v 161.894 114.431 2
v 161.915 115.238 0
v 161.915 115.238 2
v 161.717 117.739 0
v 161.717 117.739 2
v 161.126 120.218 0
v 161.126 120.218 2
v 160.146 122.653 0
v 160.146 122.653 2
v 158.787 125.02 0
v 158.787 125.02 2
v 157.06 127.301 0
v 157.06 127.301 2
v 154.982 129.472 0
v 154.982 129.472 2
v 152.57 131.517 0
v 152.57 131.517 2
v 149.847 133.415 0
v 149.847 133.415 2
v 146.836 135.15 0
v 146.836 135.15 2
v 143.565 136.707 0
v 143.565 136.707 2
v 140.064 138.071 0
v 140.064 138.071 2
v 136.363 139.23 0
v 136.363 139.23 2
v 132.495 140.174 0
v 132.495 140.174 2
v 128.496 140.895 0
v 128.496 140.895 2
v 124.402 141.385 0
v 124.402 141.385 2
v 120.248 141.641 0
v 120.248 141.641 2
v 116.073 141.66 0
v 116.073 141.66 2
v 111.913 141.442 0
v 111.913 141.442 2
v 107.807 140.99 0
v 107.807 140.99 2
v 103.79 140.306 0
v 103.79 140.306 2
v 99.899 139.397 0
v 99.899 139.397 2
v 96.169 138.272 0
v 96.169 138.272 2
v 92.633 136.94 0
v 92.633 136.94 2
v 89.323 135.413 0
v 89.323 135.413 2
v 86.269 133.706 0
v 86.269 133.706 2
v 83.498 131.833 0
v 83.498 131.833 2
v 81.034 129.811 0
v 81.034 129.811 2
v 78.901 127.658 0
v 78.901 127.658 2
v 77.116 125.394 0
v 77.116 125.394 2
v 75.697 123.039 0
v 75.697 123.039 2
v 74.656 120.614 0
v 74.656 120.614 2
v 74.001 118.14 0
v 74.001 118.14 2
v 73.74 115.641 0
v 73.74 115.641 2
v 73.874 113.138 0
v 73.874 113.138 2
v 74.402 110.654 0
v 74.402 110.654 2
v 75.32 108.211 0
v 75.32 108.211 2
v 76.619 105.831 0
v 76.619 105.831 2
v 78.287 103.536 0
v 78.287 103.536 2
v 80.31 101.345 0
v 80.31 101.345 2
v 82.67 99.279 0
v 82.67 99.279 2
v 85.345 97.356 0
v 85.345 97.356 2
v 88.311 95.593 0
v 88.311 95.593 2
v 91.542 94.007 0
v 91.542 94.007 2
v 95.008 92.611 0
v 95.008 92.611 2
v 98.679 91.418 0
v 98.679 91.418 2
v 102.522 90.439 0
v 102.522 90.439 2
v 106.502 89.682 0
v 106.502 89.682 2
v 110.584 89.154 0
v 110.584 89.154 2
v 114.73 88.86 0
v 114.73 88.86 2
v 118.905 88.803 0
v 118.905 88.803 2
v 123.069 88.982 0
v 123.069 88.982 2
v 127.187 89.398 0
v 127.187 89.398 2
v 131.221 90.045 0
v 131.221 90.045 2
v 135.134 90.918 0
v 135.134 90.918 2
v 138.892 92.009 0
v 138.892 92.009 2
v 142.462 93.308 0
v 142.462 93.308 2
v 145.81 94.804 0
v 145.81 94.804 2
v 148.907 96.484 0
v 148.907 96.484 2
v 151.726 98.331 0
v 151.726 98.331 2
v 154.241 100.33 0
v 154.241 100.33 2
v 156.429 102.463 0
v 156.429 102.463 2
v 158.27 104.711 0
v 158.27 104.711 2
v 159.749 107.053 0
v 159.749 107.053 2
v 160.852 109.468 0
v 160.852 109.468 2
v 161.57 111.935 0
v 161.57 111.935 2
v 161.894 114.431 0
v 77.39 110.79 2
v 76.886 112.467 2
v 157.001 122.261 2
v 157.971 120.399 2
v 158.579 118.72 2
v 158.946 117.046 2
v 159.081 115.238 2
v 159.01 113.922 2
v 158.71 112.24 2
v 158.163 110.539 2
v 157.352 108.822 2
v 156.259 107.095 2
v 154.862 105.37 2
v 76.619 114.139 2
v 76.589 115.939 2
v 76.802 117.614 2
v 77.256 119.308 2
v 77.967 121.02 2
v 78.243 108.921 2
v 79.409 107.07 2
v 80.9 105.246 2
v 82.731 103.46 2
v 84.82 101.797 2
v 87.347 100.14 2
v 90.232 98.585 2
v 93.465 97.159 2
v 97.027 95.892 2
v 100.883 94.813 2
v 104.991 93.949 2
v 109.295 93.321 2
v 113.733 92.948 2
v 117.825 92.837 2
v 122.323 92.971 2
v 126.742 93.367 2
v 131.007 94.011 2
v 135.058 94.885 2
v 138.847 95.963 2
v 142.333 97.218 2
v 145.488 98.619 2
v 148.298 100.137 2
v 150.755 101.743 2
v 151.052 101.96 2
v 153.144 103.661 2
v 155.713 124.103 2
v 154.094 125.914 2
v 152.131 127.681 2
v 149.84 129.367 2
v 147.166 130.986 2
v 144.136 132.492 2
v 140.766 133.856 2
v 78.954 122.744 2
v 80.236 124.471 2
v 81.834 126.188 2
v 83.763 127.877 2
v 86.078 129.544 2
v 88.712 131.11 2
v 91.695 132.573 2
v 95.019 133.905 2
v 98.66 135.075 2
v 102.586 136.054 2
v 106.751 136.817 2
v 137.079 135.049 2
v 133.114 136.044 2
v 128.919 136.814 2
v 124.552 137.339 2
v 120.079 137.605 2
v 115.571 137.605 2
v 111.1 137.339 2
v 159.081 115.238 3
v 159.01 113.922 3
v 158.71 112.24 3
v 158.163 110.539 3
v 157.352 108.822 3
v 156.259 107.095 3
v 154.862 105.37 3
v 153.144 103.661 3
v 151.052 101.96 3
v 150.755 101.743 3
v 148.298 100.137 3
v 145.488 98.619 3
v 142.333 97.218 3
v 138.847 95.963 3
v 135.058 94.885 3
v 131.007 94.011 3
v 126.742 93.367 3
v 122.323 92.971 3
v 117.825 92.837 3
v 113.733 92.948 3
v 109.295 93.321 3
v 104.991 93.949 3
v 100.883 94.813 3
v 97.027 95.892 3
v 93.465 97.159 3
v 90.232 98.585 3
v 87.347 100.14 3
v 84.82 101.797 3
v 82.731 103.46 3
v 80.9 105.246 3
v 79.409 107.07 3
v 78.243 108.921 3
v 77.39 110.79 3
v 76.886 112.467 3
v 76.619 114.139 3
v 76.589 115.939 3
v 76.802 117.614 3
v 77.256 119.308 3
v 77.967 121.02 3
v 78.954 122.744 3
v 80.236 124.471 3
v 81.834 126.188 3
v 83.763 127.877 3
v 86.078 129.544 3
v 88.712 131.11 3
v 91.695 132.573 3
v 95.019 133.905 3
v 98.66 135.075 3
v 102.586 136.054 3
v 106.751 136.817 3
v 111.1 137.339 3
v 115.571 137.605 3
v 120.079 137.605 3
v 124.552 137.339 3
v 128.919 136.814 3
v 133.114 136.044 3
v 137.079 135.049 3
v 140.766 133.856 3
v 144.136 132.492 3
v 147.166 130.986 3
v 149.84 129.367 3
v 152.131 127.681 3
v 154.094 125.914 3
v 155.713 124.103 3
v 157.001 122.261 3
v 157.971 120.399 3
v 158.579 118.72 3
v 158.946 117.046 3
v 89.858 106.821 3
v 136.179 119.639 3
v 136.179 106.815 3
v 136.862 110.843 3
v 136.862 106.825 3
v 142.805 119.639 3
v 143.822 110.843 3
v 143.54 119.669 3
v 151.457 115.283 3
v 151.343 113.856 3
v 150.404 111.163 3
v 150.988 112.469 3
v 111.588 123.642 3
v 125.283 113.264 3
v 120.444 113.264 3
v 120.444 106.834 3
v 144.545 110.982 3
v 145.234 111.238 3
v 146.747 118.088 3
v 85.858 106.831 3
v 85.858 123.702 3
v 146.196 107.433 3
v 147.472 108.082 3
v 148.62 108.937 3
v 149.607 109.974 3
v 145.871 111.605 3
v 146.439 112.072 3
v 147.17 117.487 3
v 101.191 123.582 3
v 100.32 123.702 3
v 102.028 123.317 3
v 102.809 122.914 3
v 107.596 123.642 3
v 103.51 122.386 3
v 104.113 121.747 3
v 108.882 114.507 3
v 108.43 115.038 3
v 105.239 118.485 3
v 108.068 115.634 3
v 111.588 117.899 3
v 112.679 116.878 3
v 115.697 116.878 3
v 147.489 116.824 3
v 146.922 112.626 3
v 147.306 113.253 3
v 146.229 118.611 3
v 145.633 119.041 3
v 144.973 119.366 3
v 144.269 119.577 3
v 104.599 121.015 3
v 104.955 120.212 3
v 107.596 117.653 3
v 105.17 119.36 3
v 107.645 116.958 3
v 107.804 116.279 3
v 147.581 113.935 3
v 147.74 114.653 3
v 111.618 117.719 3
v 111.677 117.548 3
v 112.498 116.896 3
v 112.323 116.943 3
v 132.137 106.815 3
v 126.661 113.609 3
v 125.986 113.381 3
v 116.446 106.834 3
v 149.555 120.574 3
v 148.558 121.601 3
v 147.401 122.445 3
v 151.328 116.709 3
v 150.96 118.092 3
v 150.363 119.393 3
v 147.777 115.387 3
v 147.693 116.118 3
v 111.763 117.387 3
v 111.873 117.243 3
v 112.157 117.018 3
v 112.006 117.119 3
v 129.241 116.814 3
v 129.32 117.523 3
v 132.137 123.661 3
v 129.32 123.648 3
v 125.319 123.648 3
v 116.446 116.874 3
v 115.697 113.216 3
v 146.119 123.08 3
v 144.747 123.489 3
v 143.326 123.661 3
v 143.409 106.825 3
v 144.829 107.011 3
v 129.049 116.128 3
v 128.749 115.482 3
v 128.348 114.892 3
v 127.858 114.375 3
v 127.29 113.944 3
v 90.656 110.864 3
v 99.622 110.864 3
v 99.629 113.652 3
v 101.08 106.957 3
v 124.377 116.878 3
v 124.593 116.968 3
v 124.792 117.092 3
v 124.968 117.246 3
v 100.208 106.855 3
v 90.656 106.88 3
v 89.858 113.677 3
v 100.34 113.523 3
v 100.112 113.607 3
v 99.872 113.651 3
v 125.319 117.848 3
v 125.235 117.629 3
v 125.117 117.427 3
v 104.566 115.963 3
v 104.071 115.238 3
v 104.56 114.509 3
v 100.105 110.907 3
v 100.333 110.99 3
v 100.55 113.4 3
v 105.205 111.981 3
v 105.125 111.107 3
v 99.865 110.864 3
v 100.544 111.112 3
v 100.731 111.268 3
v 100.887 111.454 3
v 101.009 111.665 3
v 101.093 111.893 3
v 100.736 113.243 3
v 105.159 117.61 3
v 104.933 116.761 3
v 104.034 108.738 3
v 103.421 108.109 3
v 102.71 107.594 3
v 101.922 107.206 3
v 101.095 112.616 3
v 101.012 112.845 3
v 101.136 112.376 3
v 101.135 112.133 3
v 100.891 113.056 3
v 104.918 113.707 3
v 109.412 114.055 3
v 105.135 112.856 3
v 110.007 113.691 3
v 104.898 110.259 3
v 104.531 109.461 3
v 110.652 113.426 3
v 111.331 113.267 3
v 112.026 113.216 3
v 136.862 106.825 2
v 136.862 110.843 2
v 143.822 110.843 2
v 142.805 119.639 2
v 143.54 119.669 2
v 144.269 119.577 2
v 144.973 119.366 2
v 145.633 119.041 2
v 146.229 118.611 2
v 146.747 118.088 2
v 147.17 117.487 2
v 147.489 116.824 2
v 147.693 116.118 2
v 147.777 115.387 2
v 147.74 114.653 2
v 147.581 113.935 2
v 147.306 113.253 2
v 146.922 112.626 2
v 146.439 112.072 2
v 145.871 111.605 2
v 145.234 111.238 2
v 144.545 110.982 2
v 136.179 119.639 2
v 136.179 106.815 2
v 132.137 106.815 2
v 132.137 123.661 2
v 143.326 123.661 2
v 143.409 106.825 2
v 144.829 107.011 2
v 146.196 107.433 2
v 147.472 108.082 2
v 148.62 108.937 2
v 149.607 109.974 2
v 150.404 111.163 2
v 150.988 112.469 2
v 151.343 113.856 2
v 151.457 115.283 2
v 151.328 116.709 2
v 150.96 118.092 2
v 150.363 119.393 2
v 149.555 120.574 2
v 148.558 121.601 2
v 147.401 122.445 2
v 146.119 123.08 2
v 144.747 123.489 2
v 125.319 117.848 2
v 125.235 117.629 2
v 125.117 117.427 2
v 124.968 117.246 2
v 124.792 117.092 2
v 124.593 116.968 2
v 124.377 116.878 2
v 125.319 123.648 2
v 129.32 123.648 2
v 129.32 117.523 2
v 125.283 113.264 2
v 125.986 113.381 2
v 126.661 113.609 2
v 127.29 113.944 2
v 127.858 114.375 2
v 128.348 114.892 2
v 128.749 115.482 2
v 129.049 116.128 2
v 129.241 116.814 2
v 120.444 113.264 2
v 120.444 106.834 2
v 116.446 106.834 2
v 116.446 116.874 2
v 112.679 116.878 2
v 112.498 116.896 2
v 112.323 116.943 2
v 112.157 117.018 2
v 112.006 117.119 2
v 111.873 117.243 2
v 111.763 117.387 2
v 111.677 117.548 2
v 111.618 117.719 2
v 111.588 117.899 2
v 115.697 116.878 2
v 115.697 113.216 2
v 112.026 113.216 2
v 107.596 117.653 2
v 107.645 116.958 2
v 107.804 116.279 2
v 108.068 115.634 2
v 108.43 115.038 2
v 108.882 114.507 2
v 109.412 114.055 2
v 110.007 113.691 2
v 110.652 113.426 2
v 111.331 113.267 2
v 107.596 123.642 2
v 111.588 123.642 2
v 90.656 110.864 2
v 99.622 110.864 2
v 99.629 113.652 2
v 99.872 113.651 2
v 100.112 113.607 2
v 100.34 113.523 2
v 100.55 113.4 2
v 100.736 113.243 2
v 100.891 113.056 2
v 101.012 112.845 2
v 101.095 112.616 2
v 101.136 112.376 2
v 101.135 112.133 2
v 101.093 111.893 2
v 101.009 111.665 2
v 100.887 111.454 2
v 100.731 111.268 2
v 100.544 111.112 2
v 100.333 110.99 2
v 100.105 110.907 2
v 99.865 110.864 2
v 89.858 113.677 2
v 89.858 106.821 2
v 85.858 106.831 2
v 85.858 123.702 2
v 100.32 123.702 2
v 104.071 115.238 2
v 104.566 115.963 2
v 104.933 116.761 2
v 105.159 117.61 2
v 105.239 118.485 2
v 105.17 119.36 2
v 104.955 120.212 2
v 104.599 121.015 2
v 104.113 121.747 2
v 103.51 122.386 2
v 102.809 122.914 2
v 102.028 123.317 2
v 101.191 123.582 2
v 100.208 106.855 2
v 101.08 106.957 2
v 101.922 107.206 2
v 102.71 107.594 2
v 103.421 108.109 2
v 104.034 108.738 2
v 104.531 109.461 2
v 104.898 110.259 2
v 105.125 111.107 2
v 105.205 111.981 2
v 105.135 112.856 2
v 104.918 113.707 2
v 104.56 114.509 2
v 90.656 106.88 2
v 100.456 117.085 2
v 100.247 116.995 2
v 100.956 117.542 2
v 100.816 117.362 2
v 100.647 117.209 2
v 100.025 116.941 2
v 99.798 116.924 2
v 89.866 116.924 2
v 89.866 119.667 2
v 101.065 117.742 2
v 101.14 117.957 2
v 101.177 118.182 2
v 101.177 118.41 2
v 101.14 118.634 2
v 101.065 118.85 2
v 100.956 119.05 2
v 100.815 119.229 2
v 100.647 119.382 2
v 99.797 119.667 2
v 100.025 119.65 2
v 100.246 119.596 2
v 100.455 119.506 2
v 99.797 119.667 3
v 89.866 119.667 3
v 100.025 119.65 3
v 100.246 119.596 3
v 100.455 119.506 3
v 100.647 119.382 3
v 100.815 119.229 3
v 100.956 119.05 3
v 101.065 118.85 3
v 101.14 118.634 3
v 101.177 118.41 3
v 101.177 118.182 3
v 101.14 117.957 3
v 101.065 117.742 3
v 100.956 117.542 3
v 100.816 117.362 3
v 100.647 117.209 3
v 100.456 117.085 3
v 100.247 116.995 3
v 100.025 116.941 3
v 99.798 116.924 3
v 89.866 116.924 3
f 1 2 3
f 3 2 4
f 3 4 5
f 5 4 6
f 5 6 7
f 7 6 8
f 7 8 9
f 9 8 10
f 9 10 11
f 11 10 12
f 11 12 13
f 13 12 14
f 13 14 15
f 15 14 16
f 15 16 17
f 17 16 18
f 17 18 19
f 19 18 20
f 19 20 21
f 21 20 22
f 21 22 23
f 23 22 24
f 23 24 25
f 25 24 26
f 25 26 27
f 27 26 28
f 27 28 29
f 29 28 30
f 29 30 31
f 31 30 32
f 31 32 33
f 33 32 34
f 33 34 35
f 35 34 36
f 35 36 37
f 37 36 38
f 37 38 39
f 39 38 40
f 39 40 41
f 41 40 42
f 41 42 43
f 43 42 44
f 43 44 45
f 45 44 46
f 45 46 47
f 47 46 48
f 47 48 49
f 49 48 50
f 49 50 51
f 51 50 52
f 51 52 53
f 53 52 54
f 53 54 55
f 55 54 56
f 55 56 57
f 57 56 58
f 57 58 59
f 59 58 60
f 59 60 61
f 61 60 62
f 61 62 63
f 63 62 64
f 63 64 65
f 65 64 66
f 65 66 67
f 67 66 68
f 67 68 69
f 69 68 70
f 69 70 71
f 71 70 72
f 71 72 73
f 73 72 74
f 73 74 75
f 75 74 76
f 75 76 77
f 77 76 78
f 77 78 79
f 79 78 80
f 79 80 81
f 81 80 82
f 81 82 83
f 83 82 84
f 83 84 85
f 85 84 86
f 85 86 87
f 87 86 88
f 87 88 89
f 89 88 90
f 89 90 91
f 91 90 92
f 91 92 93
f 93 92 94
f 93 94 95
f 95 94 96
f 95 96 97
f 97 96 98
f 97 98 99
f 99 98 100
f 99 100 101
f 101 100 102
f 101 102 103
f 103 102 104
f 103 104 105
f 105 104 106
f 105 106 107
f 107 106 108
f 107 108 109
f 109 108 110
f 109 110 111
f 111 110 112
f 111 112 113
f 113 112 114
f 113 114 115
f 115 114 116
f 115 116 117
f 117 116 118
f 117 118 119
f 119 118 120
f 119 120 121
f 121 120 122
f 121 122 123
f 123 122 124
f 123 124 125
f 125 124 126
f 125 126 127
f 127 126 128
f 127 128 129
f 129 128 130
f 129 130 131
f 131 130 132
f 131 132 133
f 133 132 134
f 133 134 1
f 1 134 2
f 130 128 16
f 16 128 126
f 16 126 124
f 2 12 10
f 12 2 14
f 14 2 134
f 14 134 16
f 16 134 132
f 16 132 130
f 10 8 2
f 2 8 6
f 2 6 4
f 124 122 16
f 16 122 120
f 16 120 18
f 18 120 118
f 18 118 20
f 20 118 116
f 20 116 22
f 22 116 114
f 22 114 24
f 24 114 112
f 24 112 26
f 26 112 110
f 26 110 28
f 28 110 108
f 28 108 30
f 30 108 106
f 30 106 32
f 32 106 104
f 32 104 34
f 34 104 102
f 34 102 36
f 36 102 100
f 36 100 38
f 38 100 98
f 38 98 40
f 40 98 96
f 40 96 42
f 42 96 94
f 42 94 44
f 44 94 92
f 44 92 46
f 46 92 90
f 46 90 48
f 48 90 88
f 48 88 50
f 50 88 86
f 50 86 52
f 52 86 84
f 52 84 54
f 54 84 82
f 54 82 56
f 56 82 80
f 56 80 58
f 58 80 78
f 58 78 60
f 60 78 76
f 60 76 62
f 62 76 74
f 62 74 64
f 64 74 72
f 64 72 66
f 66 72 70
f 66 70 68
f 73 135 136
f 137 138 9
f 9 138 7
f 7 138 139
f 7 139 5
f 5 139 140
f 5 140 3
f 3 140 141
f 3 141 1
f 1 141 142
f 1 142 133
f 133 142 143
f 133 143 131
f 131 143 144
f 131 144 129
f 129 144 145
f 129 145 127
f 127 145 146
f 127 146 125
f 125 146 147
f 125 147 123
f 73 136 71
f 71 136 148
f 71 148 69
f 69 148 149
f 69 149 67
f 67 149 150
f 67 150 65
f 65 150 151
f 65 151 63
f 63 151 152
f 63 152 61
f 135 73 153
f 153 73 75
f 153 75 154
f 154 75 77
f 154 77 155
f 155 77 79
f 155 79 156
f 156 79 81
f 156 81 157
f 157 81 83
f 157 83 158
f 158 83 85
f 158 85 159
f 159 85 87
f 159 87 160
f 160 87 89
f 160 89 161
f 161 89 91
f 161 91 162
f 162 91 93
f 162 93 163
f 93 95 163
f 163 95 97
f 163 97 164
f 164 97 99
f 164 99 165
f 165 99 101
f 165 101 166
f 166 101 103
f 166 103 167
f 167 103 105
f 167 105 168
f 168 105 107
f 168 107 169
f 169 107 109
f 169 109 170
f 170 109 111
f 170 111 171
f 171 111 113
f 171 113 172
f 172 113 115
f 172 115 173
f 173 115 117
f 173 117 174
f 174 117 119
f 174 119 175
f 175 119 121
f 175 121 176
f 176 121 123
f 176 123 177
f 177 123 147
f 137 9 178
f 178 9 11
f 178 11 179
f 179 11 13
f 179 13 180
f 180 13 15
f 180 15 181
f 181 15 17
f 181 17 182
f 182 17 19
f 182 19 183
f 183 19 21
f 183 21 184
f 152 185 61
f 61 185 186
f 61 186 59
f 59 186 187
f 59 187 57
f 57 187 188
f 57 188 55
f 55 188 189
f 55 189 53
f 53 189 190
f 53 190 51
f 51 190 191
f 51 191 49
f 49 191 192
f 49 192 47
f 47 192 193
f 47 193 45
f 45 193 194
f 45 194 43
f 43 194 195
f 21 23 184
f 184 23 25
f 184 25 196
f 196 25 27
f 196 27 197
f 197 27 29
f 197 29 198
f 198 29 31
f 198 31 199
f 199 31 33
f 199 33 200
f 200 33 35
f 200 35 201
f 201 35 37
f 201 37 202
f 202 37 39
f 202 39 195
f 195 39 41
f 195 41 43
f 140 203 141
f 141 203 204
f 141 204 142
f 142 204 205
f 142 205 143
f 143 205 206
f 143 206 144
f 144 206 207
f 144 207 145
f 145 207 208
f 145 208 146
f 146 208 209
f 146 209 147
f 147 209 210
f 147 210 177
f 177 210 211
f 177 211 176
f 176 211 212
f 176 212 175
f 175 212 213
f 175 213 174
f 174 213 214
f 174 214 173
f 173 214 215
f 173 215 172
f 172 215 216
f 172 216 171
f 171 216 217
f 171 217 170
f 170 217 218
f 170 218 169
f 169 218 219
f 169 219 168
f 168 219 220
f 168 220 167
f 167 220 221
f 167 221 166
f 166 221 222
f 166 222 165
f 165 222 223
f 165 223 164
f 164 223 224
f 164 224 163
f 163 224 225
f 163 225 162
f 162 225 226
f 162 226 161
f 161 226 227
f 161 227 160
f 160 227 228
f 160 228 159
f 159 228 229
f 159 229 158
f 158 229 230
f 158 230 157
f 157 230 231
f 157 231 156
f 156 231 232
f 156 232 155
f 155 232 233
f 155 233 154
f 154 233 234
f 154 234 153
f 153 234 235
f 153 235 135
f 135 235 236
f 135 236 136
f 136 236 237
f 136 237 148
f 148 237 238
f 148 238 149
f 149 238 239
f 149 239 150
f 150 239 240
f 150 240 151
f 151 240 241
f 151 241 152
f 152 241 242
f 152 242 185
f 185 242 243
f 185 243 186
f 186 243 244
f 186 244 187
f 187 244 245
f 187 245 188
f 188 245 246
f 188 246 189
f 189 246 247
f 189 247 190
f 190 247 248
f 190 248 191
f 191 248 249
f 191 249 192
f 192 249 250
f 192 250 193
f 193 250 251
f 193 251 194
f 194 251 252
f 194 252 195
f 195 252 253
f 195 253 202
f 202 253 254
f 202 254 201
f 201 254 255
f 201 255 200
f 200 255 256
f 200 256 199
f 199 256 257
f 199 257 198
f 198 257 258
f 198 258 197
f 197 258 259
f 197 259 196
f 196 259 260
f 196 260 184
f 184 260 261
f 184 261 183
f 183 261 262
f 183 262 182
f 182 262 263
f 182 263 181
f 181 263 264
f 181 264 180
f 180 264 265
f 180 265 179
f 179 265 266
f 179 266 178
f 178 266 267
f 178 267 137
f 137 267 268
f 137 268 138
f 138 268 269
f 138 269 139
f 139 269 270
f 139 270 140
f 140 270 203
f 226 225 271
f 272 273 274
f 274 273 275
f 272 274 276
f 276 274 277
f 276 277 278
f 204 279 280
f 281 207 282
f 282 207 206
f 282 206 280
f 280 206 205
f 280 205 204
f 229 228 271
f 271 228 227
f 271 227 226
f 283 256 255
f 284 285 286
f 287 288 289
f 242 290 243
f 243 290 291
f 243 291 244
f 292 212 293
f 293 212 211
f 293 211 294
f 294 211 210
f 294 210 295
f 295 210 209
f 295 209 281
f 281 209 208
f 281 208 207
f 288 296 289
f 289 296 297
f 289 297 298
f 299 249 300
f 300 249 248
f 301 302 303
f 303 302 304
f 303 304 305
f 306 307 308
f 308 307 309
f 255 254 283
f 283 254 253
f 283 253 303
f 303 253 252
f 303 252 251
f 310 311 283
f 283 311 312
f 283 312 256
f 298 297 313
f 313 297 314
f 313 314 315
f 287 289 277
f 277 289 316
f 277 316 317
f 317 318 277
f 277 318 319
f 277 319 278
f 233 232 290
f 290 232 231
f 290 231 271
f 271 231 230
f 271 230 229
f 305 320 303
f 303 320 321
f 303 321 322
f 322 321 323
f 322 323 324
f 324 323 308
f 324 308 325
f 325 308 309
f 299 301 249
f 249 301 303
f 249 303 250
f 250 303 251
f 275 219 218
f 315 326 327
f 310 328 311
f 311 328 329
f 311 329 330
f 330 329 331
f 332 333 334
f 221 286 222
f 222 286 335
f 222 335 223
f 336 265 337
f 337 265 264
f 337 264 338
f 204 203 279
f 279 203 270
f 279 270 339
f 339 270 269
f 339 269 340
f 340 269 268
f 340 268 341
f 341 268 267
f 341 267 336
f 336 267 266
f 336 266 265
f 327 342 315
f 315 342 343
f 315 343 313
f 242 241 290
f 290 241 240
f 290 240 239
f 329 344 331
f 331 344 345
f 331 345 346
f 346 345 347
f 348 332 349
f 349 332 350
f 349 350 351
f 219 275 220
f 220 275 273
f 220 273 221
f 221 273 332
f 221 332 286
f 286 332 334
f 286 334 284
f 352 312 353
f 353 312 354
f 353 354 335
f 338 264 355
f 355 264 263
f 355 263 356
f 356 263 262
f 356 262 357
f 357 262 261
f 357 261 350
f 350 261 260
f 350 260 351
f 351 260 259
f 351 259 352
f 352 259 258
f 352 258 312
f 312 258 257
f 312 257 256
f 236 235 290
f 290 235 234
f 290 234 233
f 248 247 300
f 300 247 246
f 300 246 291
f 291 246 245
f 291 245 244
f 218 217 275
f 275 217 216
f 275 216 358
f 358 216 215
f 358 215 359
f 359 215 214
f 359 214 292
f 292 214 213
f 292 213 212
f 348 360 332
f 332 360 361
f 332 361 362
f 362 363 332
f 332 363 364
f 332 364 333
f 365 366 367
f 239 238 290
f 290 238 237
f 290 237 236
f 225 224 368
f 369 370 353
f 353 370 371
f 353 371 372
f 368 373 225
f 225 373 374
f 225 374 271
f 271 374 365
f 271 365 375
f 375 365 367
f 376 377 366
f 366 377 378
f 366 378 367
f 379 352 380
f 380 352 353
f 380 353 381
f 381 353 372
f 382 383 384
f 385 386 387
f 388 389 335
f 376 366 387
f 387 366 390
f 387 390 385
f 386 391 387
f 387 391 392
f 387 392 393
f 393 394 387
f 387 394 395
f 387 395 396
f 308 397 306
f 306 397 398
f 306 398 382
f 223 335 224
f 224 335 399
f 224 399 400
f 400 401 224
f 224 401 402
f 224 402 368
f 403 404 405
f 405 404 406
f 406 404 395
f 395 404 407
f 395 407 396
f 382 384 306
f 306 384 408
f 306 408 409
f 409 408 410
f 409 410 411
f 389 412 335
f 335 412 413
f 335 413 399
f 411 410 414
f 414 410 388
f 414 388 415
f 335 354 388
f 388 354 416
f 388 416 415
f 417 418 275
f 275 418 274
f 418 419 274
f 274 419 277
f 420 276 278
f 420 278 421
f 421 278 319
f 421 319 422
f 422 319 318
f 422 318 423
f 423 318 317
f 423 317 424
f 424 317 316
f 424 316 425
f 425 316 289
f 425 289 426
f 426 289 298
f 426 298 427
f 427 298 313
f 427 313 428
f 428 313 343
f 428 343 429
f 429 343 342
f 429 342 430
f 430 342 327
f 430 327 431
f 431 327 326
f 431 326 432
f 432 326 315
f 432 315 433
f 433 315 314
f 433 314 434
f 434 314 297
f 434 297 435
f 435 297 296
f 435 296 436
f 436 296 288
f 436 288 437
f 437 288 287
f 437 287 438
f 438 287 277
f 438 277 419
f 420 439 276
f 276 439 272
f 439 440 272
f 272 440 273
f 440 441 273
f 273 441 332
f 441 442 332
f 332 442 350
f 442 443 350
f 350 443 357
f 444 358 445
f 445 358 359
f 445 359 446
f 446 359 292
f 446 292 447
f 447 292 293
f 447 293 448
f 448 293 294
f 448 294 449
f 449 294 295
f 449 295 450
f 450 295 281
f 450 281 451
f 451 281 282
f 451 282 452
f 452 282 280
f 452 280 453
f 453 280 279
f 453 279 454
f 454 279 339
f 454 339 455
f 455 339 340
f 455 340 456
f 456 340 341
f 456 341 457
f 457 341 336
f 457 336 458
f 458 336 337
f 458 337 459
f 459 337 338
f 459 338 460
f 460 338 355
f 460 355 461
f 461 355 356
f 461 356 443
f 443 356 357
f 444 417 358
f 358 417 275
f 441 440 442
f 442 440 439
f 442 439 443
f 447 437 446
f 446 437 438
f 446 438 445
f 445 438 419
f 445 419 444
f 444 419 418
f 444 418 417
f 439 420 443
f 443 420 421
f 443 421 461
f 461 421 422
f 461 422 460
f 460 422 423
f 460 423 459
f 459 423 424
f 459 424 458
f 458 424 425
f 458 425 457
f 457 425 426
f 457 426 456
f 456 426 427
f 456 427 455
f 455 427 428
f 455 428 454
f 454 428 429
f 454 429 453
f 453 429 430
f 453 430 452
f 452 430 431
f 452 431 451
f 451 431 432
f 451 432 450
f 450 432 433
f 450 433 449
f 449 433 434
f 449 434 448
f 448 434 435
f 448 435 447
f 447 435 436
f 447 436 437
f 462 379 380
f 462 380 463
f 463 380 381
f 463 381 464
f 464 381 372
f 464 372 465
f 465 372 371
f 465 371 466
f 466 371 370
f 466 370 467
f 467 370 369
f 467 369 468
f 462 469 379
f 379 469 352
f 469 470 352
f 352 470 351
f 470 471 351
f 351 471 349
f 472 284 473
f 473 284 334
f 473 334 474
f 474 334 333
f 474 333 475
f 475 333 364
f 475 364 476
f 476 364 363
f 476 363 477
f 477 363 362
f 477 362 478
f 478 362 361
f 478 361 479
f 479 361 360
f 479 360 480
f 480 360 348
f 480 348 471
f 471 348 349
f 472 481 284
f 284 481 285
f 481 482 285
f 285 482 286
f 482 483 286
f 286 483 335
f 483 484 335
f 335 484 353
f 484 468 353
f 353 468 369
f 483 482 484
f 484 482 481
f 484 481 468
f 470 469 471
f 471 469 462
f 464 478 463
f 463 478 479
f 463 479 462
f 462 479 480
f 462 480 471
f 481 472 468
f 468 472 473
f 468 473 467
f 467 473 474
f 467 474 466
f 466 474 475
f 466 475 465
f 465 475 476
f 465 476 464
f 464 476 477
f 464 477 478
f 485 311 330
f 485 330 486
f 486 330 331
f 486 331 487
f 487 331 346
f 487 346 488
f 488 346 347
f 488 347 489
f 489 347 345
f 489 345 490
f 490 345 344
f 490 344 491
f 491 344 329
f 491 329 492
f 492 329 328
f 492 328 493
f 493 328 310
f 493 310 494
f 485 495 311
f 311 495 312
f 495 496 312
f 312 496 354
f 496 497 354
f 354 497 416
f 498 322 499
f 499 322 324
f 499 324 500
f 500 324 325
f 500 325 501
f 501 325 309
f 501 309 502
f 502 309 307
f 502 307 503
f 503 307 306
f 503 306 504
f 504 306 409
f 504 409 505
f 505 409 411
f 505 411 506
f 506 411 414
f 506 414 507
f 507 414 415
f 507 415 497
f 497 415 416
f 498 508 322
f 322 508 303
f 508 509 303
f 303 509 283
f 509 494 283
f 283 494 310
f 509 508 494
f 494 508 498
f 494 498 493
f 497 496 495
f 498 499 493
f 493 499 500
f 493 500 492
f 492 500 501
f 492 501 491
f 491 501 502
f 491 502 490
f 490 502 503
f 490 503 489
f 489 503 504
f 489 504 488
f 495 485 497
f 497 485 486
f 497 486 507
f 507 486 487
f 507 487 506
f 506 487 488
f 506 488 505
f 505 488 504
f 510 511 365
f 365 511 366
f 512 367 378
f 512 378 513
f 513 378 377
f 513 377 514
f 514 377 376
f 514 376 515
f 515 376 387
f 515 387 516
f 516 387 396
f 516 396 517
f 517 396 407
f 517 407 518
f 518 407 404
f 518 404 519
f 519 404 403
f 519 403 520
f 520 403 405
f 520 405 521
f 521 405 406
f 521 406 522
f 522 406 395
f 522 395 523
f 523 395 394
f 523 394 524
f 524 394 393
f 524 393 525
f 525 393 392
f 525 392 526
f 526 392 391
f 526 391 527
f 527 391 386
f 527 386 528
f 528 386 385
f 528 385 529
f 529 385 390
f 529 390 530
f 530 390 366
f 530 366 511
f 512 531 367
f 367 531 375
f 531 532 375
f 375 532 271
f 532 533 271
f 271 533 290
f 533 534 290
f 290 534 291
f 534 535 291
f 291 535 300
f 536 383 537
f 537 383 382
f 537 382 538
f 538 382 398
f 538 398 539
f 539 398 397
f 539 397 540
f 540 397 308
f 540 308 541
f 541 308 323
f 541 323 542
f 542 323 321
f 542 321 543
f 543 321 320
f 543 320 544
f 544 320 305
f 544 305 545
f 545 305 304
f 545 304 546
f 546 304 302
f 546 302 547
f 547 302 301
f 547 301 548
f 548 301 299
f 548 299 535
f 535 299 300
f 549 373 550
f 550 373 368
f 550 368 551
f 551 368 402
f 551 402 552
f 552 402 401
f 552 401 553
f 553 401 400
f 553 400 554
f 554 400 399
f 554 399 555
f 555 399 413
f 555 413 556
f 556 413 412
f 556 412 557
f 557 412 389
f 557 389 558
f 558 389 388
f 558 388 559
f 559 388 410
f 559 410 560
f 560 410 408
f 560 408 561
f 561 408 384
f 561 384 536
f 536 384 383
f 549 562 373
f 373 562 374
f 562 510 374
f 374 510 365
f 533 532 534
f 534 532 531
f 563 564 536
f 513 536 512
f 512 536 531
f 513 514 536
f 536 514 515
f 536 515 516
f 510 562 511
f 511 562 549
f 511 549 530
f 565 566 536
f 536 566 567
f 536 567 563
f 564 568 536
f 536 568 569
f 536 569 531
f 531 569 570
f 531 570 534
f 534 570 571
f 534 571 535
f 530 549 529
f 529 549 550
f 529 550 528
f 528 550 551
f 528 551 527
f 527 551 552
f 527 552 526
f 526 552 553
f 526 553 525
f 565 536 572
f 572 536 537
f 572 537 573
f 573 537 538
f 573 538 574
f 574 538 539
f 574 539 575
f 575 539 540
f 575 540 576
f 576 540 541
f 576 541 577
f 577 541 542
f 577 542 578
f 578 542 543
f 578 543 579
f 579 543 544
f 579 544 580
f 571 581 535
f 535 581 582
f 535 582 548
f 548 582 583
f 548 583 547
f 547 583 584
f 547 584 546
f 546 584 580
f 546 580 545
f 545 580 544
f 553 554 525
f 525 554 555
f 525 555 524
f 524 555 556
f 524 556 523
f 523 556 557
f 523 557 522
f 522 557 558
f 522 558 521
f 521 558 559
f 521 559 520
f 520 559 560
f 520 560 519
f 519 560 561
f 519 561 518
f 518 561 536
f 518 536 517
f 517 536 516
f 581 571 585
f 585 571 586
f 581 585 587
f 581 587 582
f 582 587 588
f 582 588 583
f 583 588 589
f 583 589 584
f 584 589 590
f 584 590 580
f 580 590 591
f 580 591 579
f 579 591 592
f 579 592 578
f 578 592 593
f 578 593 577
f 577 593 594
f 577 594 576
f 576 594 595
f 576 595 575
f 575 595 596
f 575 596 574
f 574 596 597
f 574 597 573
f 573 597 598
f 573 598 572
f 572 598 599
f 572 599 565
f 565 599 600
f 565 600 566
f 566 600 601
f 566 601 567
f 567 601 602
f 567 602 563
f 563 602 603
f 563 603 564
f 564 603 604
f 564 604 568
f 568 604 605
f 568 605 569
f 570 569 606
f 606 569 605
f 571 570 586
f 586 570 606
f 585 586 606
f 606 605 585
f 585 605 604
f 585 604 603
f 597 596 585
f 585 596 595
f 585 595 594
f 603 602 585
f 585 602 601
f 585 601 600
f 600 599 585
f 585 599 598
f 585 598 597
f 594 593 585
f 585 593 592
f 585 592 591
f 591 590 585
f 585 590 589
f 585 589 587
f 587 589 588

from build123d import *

# Parameters (mm, degrees)
SKETCH_3_RX         = 44.090053558
SKETCH_3_RY         = 26.443239621
EXTRUDE_1_DEPTH     = 3
CUT_EXTRUDE_START   = 3
SKETCH_3_4_RX       = 44.090053558
SKETCH_3_4_RY       = 26.443239621
SKETCH_3_4_RX_2     = 41.255952368
SKETCH_3_4_RY_2     = 22.400810242
CUT_EXTRUDE_2_DEPTH = 1


with BuildPart() as part:
    # 草图3 → 凸台-拉伸1 (new body)
    with BuildSketch(Plane.XY):
        with Locations(Location((117.824832916, 115.23790741), (0, 0, 180))):
            Ellipse(SKETCH_3_RX, SKETCH_3_RY)
    extrude(amount=EXTRUDE_1_DEPTH)

    # 草图3<4> → 切除-拉伸2 (cut)
    # profile 1 of 5: a face of its own
    with BuildSketch(Plane.XY.offset(CUT_EXTRUDE_START)):
        with Locations(Location((117.824832916, 115.23790741), (0, 0, 180))):
            Ellipse(SKETCH_3_4_RX, SKETCH_3_4_RY)
        with Locations((117.824832916, 115.23790741)):
            Ellipse(SKETCH_3_4_RX_2, SKETCH_3_4_RY_2, mode=Mode.SUBTRACT)
    # profile 2 of 5: a face of its own
    with BuildSketch(Plane.XY.offset(CUT_EXTRUDE_START)):
        with BuildLine():
            ThreePointArc((143.89906311, 119.63936615), (147.779438013, 115.207061658), (143.822433472, 110.843032837))
            Line((143.822433472, 110.843032837), (136.862030029, 110.843032837))
            Line((136.862030029, 110.843032837), (136.862030029, 106.825332642))
            Line((136.862030029, 106.825332642), (143.409423828, 106.825332642))
            ThreePointArc((143.409423828, 106.825332642), (151.457049674, 115.283053778), (143.326080322, 123.660682678))
            Line((143.326080322, 123.660682678), (132.137237549, 123.660682678))
            Line((132.137237549, 123.660682678), (132.137237549, 106.814918518))
            Line((132.137237549, 106.814918518), (136.179397583, 106.814918518))
            Line((136.179397583, 106.814918518), (136.179397583, 119.63936615))
            Line((136.179397583, 119.63936615), (142.804812511, 119.63936615))
            ThreePointArc((142.804812511, 119.63936615), (143.351937811, 119.673300221), (143.89906311, 119.63936615))
        make_face()
    # profile 3 of 5: a face of its own
    with BuildSketch(Plane.XY.offset(CUT_EXTRUDE_START)):
        with BuildLine():
            Line((124.547664698, 113.264060974), (125.282608032, 113.264060974))
            ThreePointArc((125.282608032, 113.264060974), (128.113315049, 114.623573913), (129.320327759, 117.522590637))
            Line((129.320327759, 117.522590637), (129.320327759, 123.64755249))
            Line((129.320327759, 123.64755249), (125.319236755, 123.64755249))
            Line((125.319236755, 123.64755249), (125.319236755, 117.847755432))
            ThreePointArc((125.319236755, 117.847755432), (124.968269871, 117.246162802), (124.376983643, 116.878097534))
            Line((124.376983643, 116.878097534), (116.446258545, 116.873641968))
            Line((116.446258545, 116.873641968), (116.446258545, 106.834098816))
            Line((116.446258545, 106.834098816), (120.443962097, 106.834098816))
            Line((120.443962097, 106.834098816), (120.443962097, 113.264060974))
            Line((120.443962097, 113.264060974), (124.547664698, 113.264060974))
        make_face()
    # profile 4 of 5: a face of its own
    with BuildSketch(Plane.XY.offset(CUT_EXTRUDE_START)):
        with BuildLine():
            ThreePointArc((111.588310242, 117.898681641), (111.937267918, 117.178522683), (112.678985596, 116.878097534))
            Line((112.678985596, 116.878097534), (115.696937561, 116.878097534))
            Line((115.696937561, 116.878097534), (115.696937561, 113.216255188))
            Line((115.696937561, 113.216255188), (112.02633667, 113.216255188))
            ThreePointArc((112.02633667, 113.216255188), (108.882327189, 114.5074245), (107.595947266, 117.653396606))
            Line((107.595947266, 117.653396606), (107.595947266, 123.64239502))
            Line((107.595947266, 123.64239502), (111.588310242, 123.64239502))
            Line((111.588310242, 123.64239502), (111.588310242, 117.898681641))
        make_face()
    # profile 5 of 5: a face of its own
    with BuildSketch(Plane.XY.offset(CUT_EXTRUDE_START)):
        with BuildLine():
            Line((100.320487976, 123.701698303), (85.857902527, 123.701698303))
            Line((85.857902527, 123.701698303), (85.857902527, 106.831474304))
            Line((85.857902527, 106.831474304), (89.85785675, 106.821266174))
            Line((89.85785675, 106.821266174), (89.85785675, 113.6771698))
            Line((89.85785675, 113.6771698), (99.629045068, 113.652244725))
            ThreePointArc((99.629045068, 113.652244725), (99.745733087, 113.656821169), (99.86239624, 113.651649475))
            ThreePointArc((99.86239624, 113.651649475), (101.141097708, 112.257892609), (99.86239624, 110.864135742))
            ThreePointArc((99.86239624, 110.864135742), (99.742164596, 110.858959497), (99.621932952, 110.864135742))
            Line((99.621932952, 110.864135742), (90.656356812, 110.864135742))
            Line((90.656356812, 110.864135742), (90.656356812, 106.879867554))
            Line((90.656356812, 106.879867554), (99.860228116, 106.856387052))
            Line((99.860228116, 106.856387052), (100.208221436, 106.855499268))
            ThreePointArc((100.208221436, 106.855499268), (104.731739573, 109.852213429), (104.070821683, 115.23790741))
            ThreePointArc((104.070821683, 115.23790741), (104.793856796, 120.621074732), (100.320487976, 123.701698303))
        make_face()
        with BuildLine():
            Line((89.865707397, 116.923698425), (89.865707397, 119.666885376))
            Line((89.865707397, 119.666885376), (99.797425153, 119.666885376))
            Line((99.797425153, 119.666885376), (99.823417664, 119.666885376))
            ThreePointArc((99.823417664, 119.666885376), (101.182014946, 118.28271099), (99.798248291, 116.923698425))
            Line((99.798248291, 116.923698425), (89.865707397, 116.923698425))
        make_face(mode=Mode.SUBTRACT)
    extrude(amount=-CUT_EXTRUDE_2_DEPTH, mode=Mode.SUBTRACT)


solid = part.part
